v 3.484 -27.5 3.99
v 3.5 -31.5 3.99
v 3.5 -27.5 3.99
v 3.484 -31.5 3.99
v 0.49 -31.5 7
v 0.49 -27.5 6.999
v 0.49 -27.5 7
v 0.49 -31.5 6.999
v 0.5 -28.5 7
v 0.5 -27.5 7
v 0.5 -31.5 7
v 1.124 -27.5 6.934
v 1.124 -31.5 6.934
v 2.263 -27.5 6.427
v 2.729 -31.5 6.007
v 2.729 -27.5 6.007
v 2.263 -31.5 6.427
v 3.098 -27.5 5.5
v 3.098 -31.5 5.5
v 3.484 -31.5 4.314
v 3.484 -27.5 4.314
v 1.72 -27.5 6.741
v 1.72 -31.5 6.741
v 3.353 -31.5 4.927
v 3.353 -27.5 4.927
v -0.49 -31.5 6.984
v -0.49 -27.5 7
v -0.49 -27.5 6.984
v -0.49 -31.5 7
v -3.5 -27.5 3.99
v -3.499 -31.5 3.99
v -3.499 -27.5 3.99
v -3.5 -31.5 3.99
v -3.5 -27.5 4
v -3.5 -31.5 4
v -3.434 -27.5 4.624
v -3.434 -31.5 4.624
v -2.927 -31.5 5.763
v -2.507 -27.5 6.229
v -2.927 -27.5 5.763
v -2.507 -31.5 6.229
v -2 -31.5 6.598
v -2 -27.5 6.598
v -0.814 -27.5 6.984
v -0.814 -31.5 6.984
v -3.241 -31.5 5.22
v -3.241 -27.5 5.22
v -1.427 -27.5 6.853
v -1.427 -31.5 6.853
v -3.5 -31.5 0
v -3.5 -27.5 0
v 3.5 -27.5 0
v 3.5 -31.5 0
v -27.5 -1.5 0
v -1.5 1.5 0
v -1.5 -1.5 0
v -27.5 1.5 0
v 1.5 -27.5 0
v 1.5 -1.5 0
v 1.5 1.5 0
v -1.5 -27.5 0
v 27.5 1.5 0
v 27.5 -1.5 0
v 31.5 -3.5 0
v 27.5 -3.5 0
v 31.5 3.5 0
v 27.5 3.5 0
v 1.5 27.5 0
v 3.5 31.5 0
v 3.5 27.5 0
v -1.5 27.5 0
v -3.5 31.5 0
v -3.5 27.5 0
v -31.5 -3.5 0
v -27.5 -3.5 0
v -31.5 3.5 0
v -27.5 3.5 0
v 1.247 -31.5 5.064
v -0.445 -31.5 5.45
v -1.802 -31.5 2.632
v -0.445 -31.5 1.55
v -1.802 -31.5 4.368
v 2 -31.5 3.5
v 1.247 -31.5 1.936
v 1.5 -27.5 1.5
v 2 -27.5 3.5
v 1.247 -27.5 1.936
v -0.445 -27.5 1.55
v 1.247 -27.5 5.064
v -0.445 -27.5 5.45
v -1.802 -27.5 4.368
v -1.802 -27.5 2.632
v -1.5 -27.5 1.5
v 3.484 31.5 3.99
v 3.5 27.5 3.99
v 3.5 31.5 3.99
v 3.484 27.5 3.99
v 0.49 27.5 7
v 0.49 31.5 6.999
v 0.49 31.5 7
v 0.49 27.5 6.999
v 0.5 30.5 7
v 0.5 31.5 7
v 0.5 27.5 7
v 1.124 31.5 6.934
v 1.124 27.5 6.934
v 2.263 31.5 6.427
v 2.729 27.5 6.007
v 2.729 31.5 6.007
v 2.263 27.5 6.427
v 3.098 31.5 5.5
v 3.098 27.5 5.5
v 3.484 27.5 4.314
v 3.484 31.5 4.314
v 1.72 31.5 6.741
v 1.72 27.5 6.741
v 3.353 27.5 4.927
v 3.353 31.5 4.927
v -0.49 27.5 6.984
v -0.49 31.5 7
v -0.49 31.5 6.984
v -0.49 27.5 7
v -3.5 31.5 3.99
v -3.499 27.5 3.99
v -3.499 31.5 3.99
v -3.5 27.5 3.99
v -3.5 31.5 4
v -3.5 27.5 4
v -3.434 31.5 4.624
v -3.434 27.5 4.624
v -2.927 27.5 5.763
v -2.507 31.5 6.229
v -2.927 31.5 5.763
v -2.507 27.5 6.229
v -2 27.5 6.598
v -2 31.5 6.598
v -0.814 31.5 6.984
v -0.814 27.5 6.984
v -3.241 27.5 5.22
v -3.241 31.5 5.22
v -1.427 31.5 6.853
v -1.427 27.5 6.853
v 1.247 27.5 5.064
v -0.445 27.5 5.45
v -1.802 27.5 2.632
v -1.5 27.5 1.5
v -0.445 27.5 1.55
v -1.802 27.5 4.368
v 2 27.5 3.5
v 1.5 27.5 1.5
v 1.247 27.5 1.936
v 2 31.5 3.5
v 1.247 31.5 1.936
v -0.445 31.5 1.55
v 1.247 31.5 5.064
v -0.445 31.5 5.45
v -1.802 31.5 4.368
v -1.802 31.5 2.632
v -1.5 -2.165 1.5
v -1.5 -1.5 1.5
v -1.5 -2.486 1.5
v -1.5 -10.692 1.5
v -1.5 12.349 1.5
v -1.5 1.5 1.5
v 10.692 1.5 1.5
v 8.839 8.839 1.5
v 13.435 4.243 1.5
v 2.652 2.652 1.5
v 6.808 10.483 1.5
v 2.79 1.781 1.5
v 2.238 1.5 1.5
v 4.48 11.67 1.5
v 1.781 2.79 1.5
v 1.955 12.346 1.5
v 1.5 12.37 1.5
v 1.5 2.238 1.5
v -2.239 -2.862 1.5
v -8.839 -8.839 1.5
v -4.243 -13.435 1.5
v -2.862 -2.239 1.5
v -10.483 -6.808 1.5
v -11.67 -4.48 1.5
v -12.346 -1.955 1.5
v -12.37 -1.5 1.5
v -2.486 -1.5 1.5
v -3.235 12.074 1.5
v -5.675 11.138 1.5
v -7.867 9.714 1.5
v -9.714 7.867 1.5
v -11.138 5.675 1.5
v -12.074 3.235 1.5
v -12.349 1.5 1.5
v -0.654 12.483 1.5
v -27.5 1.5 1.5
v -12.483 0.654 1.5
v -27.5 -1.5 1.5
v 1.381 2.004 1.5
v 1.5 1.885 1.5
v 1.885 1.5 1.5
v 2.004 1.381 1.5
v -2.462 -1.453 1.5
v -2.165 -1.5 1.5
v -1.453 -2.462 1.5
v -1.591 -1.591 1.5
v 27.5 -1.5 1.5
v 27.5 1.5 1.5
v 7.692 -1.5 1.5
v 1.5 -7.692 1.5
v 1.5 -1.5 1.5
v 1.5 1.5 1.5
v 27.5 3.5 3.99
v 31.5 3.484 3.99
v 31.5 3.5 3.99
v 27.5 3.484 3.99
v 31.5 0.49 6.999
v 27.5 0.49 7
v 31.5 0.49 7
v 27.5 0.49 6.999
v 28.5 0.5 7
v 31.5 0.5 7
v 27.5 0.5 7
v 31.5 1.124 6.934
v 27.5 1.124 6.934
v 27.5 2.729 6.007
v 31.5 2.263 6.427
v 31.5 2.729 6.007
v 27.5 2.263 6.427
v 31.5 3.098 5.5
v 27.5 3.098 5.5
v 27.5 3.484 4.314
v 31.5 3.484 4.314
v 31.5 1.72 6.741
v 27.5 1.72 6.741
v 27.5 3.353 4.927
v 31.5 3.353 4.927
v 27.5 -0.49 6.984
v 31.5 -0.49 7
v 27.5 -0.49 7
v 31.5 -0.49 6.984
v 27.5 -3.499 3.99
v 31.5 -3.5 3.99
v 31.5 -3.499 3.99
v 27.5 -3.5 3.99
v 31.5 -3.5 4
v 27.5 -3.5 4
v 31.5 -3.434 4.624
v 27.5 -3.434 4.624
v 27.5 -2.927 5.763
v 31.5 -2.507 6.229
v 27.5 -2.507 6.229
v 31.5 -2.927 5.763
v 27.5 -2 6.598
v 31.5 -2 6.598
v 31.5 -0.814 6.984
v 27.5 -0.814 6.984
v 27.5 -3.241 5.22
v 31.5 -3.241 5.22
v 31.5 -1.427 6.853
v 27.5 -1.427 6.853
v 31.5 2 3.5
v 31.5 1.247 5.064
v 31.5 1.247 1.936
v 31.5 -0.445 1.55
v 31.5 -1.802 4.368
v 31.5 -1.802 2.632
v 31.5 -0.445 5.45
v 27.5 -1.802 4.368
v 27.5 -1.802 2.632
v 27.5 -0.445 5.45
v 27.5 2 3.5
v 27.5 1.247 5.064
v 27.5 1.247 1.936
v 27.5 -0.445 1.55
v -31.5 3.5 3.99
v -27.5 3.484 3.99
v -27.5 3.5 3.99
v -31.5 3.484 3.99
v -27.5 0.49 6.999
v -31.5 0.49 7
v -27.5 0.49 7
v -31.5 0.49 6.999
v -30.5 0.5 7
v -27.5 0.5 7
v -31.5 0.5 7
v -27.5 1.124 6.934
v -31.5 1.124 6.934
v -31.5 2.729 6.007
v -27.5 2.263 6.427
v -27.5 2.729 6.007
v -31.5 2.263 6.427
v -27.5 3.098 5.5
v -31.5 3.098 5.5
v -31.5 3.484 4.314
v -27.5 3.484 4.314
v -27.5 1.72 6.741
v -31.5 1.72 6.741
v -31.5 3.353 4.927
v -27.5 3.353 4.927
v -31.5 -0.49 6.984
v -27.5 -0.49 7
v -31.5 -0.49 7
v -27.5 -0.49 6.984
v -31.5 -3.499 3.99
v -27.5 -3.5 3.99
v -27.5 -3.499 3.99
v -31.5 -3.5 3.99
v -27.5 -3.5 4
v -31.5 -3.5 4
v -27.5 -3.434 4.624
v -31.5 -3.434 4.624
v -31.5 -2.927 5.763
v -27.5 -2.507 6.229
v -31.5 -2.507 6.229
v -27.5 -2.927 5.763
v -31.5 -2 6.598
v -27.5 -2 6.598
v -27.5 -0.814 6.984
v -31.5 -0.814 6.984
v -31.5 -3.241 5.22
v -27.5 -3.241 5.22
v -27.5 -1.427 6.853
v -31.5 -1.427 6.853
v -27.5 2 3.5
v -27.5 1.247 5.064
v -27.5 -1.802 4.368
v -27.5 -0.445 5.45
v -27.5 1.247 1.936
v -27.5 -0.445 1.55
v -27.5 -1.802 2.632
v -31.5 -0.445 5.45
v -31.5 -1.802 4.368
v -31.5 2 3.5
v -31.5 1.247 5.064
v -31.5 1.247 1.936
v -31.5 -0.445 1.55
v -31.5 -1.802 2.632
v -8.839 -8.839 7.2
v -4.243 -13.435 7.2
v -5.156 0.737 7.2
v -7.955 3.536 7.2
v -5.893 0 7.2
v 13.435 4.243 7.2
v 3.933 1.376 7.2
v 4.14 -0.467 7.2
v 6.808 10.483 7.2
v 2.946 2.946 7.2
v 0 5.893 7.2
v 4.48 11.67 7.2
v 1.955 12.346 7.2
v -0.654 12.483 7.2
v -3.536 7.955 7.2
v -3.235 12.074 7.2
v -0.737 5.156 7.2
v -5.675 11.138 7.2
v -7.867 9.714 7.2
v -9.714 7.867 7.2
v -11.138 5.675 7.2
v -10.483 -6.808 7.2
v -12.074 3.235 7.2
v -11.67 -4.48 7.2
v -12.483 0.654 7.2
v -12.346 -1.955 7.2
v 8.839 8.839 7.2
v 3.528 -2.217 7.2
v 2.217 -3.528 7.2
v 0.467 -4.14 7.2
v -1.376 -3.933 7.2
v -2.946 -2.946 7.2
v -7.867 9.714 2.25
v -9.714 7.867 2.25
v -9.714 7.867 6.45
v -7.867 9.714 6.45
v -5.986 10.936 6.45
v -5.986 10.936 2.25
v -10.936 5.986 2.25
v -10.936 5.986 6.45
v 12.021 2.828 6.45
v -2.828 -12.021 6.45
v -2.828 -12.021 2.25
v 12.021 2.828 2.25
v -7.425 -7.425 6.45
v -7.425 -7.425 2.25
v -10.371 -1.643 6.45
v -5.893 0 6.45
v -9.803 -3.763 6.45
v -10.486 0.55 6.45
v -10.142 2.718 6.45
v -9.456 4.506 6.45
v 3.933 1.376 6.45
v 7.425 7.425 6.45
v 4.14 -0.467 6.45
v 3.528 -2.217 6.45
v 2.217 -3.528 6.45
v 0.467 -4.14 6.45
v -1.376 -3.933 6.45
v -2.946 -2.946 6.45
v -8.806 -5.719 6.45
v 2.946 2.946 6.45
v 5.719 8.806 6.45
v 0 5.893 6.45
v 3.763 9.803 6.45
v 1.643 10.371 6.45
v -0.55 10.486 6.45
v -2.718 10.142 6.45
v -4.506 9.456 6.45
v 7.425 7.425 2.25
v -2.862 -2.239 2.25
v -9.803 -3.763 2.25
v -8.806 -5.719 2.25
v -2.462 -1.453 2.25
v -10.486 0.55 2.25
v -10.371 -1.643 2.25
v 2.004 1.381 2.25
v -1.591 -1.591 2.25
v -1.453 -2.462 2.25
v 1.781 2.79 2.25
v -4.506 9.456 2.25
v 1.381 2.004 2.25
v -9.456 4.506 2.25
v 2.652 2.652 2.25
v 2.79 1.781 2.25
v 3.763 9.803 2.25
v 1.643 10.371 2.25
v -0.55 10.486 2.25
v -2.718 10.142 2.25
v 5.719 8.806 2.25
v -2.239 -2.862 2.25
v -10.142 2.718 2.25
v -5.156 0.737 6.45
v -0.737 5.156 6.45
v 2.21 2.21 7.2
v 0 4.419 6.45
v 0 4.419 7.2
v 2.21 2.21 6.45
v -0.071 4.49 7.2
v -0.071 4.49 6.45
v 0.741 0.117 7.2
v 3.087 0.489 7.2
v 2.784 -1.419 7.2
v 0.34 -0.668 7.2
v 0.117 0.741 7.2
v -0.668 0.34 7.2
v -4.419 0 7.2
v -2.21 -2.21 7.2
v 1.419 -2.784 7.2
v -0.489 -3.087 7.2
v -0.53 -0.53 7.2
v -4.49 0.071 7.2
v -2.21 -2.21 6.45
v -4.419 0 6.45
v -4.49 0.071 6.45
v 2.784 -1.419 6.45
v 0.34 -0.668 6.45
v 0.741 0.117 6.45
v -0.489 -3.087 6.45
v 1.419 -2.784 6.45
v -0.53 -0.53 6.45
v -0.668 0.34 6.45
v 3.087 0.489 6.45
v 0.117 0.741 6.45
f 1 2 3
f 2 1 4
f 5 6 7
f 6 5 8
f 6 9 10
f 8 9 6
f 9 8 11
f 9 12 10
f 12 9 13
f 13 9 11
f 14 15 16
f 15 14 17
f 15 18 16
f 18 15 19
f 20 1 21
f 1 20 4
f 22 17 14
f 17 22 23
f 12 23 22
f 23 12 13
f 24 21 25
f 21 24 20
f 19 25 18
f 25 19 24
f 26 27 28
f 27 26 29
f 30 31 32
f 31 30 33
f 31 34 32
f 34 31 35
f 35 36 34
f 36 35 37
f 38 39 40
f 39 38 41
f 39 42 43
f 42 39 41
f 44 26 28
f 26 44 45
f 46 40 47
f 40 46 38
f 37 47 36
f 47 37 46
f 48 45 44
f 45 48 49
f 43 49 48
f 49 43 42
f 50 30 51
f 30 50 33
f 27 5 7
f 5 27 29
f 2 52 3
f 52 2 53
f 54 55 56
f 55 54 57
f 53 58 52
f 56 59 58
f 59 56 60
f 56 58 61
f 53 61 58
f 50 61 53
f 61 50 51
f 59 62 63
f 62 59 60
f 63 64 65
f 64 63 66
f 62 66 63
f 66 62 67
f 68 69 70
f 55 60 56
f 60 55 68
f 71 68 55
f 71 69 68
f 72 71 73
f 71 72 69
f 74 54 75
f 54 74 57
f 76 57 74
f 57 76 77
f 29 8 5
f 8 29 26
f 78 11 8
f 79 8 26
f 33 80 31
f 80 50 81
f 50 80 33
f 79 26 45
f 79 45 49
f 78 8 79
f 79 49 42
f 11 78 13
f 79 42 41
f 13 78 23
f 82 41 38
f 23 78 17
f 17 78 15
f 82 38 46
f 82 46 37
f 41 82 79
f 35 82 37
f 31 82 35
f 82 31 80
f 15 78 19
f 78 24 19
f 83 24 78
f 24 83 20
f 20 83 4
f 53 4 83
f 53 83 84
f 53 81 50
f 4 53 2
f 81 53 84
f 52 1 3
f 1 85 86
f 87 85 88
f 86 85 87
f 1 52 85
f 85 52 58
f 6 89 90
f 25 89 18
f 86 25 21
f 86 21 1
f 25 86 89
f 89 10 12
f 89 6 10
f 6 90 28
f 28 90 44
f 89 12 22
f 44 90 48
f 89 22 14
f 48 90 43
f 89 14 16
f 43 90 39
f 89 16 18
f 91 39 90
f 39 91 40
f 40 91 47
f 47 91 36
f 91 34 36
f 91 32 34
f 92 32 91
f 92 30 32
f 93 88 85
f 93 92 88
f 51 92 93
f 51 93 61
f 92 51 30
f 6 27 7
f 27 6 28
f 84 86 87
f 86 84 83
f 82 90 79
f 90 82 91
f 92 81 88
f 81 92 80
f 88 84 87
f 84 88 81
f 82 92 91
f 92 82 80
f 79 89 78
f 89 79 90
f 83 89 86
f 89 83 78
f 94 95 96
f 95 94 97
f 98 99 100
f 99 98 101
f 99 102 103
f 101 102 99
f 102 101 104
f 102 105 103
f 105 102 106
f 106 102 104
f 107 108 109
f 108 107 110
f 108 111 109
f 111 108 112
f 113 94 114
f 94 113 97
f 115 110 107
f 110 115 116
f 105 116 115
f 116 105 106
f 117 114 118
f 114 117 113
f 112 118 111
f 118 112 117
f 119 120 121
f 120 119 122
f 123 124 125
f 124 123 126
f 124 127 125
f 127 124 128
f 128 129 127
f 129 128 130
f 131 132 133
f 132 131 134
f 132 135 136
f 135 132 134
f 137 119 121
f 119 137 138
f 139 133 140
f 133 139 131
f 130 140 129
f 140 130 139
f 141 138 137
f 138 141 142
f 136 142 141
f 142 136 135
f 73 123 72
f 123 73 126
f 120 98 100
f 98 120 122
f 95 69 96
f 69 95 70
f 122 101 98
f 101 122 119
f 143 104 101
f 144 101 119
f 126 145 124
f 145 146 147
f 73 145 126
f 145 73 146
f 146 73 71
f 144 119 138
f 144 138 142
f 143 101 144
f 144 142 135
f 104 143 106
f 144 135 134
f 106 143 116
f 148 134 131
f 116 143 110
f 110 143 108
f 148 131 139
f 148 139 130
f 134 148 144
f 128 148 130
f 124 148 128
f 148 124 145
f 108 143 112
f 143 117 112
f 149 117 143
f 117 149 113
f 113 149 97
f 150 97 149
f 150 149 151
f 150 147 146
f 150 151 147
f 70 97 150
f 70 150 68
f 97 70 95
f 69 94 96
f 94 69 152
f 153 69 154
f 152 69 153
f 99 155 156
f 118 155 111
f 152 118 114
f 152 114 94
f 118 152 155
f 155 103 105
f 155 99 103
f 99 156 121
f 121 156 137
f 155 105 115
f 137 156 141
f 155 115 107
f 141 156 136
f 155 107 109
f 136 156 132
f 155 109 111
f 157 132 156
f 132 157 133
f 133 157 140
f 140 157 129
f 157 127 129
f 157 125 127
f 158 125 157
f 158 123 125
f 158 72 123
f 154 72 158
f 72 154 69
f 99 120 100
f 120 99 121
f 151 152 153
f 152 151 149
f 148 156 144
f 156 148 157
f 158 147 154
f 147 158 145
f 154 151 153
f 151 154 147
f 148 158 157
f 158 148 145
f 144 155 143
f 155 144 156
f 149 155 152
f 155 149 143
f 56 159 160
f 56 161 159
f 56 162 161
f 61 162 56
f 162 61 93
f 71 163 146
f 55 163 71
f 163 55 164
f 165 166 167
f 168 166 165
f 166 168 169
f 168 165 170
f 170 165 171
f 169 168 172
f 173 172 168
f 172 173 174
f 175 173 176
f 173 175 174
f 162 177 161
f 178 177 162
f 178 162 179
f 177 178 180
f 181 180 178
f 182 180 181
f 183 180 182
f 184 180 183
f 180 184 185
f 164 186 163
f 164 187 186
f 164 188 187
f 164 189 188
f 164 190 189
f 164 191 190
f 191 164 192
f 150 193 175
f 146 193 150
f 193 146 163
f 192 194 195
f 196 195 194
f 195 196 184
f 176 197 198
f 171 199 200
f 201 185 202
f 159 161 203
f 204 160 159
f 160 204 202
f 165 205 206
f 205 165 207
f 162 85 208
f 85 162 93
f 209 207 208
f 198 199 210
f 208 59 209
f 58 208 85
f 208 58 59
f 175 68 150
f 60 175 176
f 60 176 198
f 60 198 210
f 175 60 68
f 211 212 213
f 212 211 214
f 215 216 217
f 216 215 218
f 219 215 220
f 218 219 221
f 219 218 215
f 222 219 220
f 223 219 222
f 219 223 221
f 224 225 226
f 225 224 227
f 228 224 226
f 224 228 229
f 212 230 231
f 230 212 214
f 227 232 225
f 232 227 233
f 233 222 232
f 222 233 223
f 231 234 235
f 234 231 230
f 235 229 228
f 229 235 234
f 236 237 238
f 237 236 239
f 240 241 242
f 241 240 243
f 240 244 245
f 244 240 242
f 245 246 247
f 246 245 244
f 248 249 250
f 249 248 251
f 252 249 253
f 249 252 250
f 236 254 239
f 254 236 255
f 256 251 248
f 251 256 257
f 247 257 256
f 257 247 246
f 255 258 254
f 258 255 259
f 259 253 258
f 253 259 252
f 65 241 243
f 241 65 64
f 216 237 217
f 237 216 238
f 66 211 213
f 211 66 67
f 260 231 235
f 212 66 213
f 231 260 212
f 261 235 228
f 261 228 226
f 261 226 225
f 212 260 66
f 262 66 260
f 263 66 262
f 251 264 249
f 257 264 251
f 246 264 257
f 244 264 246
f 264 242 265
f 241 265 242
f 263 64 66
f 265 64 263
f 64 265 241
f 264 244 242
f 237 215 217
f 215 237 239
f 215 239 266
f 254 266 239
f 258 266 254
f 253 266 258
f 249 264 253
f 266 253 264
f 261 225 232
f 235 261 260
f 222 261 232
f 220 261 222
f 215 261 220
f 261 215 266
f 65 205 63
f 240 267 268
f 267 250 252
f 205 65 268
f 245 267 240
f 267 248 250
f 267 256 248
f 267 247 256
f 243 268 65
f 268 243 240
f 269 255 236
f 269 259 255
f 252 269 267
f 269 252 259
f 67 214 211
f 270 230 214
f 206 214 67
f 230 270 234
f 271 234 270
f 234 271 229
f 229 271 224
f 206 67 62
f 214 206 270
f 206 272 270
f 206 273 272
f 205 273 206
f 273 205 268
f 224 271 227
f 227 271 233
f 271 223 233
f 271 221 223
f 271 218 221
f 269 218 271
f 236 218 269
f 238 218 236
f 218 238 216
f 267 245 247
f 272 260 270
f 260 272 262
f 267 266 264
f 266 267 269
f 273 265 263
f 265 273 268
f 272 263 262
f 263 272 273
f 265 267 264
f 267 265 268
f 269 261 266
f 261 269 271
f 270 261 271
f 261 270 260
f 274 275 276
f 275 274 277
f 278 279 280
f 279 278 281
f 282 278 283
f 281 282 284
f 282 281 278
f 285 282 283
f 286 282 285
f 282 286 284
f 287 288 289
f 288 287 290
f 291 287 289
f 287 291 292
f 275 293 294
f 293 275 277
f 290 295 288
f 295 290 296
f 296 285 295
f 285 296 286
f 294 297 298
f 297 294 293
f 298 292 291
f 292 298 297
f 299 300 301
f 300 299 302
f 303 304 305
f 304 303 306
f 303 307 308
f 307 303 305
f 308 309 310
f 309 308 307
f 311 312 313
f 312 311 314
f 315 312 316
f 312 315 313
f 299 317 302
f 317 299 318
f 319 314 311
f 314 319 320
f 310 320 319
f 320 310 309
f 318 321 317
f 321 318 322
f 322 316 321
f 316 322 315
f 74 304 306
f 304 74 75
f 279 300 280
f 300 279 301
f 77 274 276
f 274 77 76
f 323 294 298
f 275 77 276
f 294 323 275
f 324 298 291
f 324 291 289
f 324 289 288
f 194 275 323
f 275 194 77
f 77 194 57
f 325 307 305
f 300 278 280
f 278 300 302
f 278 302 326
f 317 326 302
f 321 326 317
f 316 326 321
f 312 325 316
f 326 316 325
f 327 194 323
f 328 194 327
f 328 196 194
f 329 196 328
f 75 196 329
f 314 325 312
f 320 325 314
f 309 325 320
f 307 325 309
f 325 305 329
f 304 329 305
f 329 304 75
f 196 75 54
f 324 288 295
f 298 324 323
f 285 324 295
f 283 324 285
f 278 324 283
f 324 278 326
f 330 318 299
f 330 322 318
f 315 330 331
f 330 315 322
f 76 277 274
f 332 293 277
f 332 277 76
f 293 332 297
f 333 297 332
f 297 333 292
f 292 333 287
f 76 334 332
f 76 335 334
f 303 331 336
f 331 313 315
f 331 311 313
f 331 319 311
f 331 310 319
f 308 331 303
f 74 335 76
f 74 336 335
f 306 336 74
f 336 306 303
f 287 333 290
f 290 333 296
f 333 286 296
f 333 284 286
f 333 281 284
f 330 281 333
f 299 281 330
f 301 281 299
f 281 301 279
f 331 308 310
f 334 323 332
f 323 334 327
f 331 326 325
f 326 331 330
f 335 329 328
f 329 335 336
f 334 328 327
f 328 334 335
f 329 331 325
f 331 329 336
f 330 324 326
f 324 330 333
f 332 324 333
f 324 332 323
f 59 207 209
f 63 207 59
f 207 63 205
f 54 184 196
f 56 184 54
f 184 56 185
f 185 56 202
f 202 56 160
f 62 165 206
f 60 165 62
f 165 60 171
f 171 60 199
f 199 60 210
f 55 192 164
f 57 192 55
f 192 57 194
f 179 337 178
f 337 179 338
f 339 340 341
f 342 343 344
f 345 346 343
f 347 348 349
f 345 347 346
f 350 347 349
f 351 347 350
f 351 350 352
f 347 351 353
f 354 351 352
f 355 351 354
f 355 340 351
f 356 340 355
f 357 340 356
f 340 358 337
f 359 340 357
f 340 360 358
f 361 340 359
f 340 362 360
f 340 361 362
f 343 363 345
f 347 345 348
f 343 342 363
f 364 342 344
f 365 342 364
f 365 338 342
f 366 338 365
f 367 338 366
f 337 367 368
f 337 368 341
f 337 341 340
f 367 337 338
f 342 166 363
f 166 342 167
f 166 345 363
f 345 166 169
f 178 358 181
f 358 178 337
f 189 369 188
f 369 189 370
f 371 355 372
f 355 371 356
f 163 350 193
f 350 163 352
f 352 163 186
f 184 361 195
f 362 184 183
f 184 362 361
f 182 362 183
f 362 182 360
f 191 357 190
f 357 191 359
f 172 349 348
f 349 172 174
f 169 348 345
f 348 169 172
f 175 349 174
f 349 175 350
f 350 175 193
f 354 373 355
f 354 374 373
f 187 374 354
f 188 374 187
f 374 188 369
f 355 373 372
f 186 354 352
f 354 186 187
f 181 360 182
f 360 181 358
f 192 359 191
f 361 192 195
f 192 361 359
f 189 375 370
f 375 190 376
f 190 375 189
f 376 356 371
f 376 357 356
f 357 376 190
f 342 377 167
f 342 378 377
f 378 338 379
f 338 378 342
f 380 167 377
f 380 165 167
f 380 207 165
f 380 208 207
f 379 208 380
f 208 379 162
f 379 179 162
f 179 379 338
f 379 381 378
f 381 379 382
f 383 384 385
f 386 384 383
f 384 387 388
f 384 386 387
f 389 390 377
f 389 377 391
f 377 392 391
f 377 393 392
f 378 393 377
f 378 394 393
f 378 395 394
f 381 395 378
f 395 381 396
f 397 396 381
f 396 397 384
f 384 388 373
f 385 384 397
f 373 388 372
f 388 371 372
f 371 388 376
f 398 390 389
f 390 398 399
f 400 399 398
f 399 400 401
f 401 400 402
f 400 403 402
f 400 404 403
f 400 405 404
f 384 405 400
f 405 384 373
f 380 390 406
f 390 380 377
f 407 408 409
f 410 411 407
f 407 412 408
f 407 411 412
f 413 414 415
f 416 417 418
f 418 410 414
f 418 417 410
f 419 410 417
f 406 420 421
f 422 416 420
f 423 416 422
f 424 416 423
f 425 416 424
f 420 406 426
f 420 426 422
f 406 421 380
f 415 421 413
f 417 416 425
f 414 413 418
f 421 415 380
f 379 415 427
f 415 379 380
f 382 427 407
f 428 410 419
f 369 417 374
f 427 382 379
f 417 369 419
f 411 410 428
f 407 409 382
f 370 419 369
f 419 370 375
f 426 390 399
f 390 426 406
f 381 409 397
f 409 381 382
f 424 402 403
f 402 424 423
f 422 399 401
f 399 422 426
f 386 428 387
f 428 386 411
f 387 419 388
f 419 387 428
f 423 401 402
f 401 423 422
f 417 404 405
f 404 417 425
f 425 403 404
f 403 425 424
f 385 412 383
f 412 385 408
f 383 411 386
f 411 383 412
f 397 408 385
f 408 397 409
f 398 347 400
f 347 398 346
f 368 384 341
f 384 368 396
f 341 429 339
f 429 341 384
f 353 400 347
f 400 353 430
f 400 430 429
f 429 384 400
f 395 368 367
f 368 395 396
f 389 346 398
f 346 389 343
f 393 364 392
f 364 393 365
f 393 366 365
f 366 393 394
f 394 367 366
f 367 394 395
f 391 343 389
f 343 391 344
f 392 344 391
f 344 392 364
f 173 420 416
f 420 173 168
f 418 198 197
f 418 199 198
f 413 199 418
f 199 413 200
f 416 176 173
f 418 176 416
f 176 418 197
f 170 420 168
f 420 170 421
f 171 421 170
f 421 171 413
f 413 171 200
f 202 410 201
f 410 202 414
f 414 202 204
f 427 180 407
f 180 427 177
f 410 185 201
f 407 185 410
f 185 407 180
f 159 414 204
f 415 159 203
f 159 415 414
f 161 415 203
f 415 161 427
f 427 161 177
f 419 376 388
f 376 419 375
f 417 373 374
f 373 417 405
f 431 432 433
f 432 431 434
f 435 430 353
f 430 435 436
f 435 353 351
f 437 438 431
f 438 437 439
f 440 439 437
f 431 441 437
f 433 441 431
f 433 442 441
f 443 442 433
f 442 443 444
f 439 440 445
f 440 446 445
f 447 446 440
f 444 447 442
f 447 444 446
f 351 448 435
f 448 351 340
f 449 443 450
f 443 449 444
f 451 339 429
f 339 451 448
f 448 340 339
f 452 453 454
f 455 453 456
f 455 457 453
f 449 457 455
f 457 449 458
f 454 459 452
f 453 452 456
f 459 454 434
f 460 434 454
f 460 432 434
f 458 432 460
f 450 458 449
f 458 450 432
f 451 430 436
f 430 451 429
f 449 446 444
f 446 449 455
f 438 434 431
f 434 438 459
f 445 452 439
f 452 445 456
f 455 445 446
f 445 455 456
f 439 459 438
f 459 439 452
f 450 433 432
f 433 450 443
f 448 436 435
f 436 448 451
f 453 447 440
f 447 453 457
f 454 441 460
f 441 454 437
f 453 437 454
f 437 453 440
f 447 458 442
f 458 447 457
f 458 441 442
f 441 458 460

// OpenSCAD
// file: thirdparty/CornerCutout.scad
/**
 * CorerCutout.scad
 * v0.1.1
 *
 * Copyright (c) 2015 Ethan Smith
 *
 * This work is licensed under a Creative Commons Attribution-ShareAlike
 * 4.0 International License http://creativecommons.org/licenses/by-sa/4.0/
 */


/**
 * Constants for corner direction
 */
CORNER_SW = 0;
CORNER_SE = 1;
CORNER_NW = 2;
CORNER_NE = 3;

/**
 * Generates a model used to trim off the corner of an object
 *
 * @param direction - direction to trim
 * @param thickness - thickness of the object to trim
 * @param radius - radius of the corner
 */
module CornerCutout(direction = 0, thickness = 10, radius = 4, extra = 0.4, cutin = 0.01, smooth=30, cylinderExtra = 0) {
	rotate([0,0,direction*90]) difference() {
		translate([-extra,-extra, -extra*2]) cube([radius+extra+cutin, radius+extra+cutin, thickness+extra*4]);
		translate([radius, radius, -extra-cylinderExtra/2]) cylinder(thickness+extra*2+cylinderExtra, radius, radius, $fn=smooth);
	}
}
// file: parameters.scad
/**
 * Created 2015-11-06 by Ethan Smith
 */


/*------------------------
 * HARDWARE
 *----------------------*/

BatteryThickness = 3.2;
BatteryThicknessBuffer = 1;
BatteryDiameter = 21;
BatteryGripSize = 6;

LedDiameter = 4;

WireDiameter = 1.5;


/*------------------------
 * FIXED MODEL SIZES
 *----------------------*/

ArmLength = 30;
ArmThickness = 1.5;
ArmWidth = 3;

LedClipThickness = 4;
LedClipWall = 1.5;
LedClipCorner = 3;

BatteryHolderWallThickess = 2;
BatteryHolderFace = 0.75;

Overlap = 0.1;


/*------------------------
 * CALCULATED
 *----------------------*/

TotalArmSpan = ArmLength * 2 + ArmWidth;

LedClipWidth = LedClipWall * 2 + LedDiameter;
LedClipHeight = ArmThickness + LedDiameter + LedClipWall;

BatteryCutoutThickness = BatteryThickness + BatteryThicknessBuffer;
BatteryHolderWidth = BatteryHolderWallThickess * 2 + BatteryDiameter;
BatteryHolderThickness = BatteryHolderFace * 2 + BatteryCutoutThickness;
BatteryHolderHoleDistance = ArmWidth * 2;
// file: elements/main_frame.scad
include <../parameters.scad>;
include <../thirdparty/CornerCutout.scad>;

module main_frame() {
   arm();
   rotate([0,0,90]) arm();
   translate([0,0,ArmThickness]) rotate([0,0,45]) batteryHolder();
}

module arm() {
   translate([-ArmWidth/2, -TotalArmSpan/2]) cube([ArmWidth, TotalArmSpan, ArmThickness]);
   translate([0, -TotalArmSpan/2]) ledClip();
   translate([0, TotalArmSpan/2 - LedClipThickness]) ledClip();
}

module ledClip() {
   difference() {
      translate([-LedClipWidth/2, 0]) cube([LedClipWidth,  LedClipThickness, LedClipHeight]);
      translate([LedClipWidth/2, 0, LedClipHeight]) rotate([-90,0]) CornerCutout(CORNER_SE, LedClipThickness, LedClipCorner);
      translate([-LedClipWidth/2, 0, LedClipHeight]) rotate([-90,0]) CornerCutout(CORNER_SW, LedClipThickness, LedClipCorner);
      translate([0, -Overlap, ArmThickness + LedDiameter/2]) rotate([-90, 0]) cylinder(h = LedClipThickness + Overlap * 2, r = LedDiameter/2);
   }
}

module batteryHolder() {
   difference() {
      batteryHolderShape(BatteryHolderWidth, BatteryGripSize, BatteryHolderThickness);
      translate([0,0,BatteryHolderFace]) batteryHolderShape(BatteryDiameter, 0, BatteryCutoutThickness, BatteryHolderWallThickess + Overlap);
      translate([BatteryHolderHoleDistance/2, 0, -Overlap]) cylinder(BatteryHolderFace + Overlap * 2, WireDiameter/2, WireDiameter/2);
      translate([-BatteryHolderHoleDistance/2, 0, -Overlap]) cylinder(BatteryHolderFace + Overlap * 2, WireDiameter/2, WireDiameter/2);
      translate([0,0,BatteryHolderThickness - BatteryHolderFace - Overlap]) rotate([0,0,180]) batteryHolderShape(BatteryHolderWidth/3, 0, BatteryHolderFace + Overlap * 2);
      translate([-BatteryDiameter/6, -BatteryHolderWidth/2 - Overlap, BatteryHolderFace]) cube([BatteryDiameter/3, BatteryHolderWidth + Overlap * 2, BatteryCutoutThickness]);
   }

   translate([0,0,BatteryHolderThickness - BatteryHolderFace]) rotate([0,0,180]) difference() {
      batteryHolderShape(BatteryHolderWidth/4, 0, BatteryHolderFace, BatteryHolderWidth/5);
      translate([0, 0, -Overlap]) cylinder(BatteryHolderFace + Overlap * 2, WireDiameter/2, WireDiameter/2);
   }
}

module batteryHolderShape(size = 10, grip = 0, thickness = 3, extra = 0) {
   difference() {
      union() {
         translate([-size/2, -size/2 - extra, 0]) cube([size, size/2 + extra, thickness]);
         cylinder(thickness, size/2, size/2);
      }
      translate([-size/2 - Overlap, -size/2 - Overlap, -Overlap]) cube([size + Overlap * 2, grip + Overlap, thickness + Overlap * 2]);
   }

}
// main file
use <elements/main_frame.scad>;
include <parameters.scad>;

main_frame();
